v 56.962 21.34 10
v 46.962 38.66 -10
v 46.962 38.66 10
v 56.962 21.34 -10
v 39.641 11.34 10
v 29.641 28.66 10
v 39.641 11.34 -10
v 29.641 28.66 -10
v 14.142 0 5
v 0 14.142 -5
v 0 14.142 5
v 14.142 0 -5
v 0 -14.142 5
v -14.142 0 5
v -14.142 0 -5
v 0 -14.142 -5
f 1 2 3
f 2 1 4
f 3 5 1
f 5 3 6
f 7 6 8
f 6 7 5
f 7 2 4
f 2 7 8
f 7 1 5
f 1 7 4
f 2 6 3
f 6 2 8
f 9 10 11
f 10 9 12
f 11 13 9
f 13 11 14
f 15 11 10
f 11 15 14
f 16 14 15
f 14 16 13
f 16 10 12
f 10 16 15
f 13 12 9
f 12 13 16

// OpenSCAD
//--Ejemplo de translación y rotación
rotate([0,0,30])
  translate([50,0,0])
    cube([20,20,20],center=true);

rotate([0,0,45])
 cube([20,20,10],center=true);
